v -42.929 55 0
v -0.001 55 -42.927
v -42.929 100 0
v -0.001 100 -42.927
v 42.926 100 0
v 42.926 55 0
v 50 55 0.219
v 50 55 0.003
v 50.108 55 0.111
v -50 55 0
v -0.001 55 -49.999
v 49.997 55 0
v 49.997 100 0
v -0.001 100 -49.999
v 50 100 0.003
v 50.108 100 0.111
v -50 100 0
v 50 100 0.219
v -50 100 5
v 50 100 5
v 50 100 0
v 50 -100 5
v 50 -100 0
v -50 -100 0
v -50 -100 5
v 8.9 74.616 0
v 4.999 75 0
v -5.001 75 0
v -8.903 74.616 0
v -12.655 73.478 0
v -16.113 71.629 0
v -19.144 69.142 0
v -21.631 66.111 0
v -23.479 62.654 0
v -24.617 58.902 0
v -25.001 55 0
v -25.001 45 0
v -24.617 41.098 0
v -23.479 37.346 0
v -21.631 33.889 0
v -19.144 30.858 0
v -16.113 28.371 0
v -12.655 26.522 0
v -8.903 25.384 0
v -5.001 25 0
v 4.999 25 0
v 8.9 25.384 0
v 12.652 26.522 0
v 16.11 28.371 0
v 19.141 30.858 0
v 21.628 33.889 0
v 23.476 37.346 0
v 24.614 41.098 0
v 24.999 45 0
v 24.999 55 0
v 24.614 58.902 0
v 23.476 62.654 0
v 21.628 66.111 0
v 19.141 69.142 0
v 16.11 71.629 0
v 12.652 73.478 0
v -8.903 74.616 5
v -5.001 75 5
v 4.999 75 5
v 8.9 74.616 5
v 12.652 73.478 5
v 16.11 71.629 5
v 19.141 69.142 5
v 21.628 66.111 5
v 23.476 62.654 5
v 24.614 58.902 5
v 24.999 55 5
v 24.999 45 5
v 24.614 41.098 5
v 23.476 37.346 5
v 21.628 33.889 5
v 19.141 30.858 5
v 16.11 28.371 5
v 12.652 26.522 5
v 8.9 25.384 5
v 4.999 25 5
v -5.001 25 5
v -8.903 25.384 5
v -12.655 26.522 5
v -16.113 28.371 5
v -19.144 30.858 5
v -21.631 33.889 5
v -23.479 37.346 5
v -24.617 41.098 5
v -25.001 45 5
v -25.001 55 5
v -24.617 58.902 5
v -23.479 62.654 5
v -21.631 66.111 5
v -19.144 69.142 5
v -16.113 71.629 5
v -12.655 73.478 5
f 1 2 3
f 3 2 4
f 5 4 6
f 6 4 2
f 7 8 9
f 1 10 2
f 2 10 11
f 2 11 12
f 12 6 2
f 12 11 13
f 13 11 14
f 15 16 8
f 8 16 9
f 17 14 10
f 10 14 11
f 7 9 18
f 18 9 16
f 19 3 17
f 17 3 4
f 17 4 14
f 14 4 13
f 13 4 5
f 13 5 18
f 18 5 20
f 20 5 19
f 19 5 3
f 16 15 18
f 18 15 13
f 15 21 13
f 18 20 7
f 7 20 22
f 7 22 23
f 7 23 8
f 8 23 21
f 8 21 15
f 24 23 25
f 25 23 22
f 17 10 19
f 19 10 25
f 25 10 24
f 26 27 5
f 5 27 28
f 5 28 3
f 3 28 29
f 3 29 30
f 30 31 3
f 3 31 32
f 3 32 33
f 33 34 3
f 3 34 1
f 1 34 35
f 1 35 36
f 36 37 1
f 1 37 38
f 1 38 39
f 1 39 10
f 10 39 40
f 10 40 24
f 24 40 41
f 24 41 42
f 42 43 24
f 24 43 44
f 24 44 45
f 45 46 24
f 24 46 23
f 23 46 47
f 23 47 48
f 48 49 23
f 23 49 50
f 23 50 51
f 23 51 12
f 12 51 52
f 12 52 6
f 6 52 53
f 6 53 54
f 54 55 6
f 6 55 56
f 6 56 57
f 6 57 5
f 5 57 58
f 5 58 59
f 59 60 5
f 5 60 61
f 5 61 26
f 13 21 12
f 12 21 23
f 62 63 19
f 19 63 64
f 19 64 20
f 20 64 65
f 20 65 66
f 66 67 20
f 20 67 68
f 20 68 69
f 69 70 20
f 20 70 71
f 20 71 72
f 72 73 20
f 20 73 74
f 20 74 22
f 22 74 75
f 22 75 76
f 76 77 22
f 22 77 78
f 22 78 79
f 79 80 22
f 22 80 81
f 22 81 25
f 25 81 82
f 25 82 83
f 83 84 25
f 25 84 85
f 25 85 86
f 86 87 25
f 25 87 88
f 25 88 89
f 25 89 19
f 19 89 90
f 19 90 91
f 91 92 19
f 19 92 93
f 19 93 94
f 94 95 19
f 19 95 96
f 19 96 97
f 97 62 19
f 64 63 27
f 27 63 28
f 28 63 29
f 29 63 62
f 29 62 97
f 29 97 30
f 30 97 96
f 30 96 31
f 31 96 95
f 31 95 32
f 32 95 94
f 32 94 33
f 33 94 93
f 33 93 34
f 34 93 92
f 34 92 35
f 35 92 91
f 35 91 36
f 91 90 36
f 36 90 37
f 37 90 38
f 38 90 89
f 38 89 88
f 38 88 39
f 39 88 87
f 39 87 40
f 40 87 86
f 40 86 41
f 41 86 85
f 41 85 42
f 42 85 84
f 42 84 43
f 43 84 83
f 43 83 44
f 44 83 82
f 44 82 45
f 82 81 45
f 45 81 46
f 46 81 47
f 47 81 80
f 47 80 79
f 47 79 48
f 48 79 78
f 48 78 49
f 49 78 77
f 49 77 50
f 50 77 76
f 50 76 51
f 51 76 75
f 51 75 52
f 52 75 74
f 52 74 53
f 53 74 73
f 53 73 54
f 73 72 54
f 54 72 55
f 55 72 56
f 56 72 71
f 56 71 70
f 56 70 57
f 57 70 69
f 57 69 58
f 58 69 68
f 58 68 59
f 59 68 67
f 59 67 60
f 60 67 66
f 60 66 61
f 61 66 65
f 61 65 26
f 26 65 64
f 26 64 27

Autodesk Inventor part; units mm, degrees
ref_plane "YZ Plane" through (0, 0, 0) normal (1, 0, 0) x (0, 1, 0)
ref_plane "XZ Plane" through (0, 0, 0) normal (0, 1, 0) x (-1, 0, 0)
ref_plane "XY Plane" through (0, 0, 0) normal (0, 0, 1) x (1, 0, 0)
sketch "Sketch1" plane through (0, 0, 0) normal (0, 0, 1) x (1, 0, 0)
  line L0 (-50, -100) -> (50, -100)
  line L1 (50, -100) -> (50, 100)
  line L2 (50, 100) -> (-50, 100)
  line L3 (-50, 100) -> (-50, -100)
  line L4 (-50, -100) -> (50, 100) construction
  line L5 (50, -100) -> (-50, 100) construction
  point P0 (0, 0)
  dimension "d0" = 100
  dimension "d1" = 200
extrude "Extrusion1" add sketch "Sketch1" along normal blind 5
sketch "Sketch2" plane through (-50, 100, 0) normal (0, 1, 0) x (1, 0, 0)
  line L0 (0, 0) -> (100, 0) projected
  line L1 (0, 0) -> (49.9986, 49.9986)
  line L2 (49.9986, 49.9986) -> (53.5341, 46.463)
  line L3 (53.5341, 46.463) -> (3.5355, -3.5355)
  line L4 (3.5355, -3.5355) -> (0, 0)
  line L5 (0, 0) -> (70.7086, 0) construction
  line L6 (100.108, -0.1109) -> (53.5341, 46.463)
  line L7 (53.5341, 46.463) -> (49.9986, 42.9275)
  line L8 (49.9986, 42.9275) -> (96.5724, -3.6464)
  line L9 (96.5724, -3.6464) -> (100.108, -0.1109)
  point P0 (50, 0)
  point P1 (49.9986, 42.9275)
  dimension "d4" = 45
  dimension "d5" = 5
  dimension "d6" = 5
extrude "Extrusion2" add sketch "Sketch2" against normal blind 45 contours L1 L2 L3 L0 | L0 L3 L4 | L8 L3 L6 L0 | L0 L6 L9 L8
sketch "Sketch6" plane through (0, 0, 5) normal (0, 0, 1) x (1, 0, 0)
  line L0 (4.9986, 75) -> (-5.0014, 75)
  line L1 (-25.0014, 55) -> (-25.0014, 45)
  line L2 (-5.0014, 25) -> (4.9986, 25)
  line L3 (24.9986, 45) -> (24.9986, 55)
  line L4 (24.9986, 75) -> (-25.0014, 25) construction
  line L5 (-25.0014, 75) -> (24.9986, 25) construction
  arc A0 (4.9986, 25) -> (24.9986, 45) centre (4.9986, 45) ccw
  arc A1 (24.9986, 55) -> (4.9986, 75) centre (4.9986, 55) ccw
  arc A2 (-5.0014, 75) -> (-25.0014, 55) centre (-5.0014, 55) ccw
  arc A3 (-25.0014, 45) -> (-5.0014, 25) centre (-5.0014, 45) ccw
  point P0 (0, 0)
  point P1 (-0.0014, 50)
  dimension "d21" = 50
  dimension "d22" = 50
  dimension "d23" = 20
extrude "Extrusion6" cut sketch "Sketch6" against normal blind 5
properties part number "fixation_v04b"
